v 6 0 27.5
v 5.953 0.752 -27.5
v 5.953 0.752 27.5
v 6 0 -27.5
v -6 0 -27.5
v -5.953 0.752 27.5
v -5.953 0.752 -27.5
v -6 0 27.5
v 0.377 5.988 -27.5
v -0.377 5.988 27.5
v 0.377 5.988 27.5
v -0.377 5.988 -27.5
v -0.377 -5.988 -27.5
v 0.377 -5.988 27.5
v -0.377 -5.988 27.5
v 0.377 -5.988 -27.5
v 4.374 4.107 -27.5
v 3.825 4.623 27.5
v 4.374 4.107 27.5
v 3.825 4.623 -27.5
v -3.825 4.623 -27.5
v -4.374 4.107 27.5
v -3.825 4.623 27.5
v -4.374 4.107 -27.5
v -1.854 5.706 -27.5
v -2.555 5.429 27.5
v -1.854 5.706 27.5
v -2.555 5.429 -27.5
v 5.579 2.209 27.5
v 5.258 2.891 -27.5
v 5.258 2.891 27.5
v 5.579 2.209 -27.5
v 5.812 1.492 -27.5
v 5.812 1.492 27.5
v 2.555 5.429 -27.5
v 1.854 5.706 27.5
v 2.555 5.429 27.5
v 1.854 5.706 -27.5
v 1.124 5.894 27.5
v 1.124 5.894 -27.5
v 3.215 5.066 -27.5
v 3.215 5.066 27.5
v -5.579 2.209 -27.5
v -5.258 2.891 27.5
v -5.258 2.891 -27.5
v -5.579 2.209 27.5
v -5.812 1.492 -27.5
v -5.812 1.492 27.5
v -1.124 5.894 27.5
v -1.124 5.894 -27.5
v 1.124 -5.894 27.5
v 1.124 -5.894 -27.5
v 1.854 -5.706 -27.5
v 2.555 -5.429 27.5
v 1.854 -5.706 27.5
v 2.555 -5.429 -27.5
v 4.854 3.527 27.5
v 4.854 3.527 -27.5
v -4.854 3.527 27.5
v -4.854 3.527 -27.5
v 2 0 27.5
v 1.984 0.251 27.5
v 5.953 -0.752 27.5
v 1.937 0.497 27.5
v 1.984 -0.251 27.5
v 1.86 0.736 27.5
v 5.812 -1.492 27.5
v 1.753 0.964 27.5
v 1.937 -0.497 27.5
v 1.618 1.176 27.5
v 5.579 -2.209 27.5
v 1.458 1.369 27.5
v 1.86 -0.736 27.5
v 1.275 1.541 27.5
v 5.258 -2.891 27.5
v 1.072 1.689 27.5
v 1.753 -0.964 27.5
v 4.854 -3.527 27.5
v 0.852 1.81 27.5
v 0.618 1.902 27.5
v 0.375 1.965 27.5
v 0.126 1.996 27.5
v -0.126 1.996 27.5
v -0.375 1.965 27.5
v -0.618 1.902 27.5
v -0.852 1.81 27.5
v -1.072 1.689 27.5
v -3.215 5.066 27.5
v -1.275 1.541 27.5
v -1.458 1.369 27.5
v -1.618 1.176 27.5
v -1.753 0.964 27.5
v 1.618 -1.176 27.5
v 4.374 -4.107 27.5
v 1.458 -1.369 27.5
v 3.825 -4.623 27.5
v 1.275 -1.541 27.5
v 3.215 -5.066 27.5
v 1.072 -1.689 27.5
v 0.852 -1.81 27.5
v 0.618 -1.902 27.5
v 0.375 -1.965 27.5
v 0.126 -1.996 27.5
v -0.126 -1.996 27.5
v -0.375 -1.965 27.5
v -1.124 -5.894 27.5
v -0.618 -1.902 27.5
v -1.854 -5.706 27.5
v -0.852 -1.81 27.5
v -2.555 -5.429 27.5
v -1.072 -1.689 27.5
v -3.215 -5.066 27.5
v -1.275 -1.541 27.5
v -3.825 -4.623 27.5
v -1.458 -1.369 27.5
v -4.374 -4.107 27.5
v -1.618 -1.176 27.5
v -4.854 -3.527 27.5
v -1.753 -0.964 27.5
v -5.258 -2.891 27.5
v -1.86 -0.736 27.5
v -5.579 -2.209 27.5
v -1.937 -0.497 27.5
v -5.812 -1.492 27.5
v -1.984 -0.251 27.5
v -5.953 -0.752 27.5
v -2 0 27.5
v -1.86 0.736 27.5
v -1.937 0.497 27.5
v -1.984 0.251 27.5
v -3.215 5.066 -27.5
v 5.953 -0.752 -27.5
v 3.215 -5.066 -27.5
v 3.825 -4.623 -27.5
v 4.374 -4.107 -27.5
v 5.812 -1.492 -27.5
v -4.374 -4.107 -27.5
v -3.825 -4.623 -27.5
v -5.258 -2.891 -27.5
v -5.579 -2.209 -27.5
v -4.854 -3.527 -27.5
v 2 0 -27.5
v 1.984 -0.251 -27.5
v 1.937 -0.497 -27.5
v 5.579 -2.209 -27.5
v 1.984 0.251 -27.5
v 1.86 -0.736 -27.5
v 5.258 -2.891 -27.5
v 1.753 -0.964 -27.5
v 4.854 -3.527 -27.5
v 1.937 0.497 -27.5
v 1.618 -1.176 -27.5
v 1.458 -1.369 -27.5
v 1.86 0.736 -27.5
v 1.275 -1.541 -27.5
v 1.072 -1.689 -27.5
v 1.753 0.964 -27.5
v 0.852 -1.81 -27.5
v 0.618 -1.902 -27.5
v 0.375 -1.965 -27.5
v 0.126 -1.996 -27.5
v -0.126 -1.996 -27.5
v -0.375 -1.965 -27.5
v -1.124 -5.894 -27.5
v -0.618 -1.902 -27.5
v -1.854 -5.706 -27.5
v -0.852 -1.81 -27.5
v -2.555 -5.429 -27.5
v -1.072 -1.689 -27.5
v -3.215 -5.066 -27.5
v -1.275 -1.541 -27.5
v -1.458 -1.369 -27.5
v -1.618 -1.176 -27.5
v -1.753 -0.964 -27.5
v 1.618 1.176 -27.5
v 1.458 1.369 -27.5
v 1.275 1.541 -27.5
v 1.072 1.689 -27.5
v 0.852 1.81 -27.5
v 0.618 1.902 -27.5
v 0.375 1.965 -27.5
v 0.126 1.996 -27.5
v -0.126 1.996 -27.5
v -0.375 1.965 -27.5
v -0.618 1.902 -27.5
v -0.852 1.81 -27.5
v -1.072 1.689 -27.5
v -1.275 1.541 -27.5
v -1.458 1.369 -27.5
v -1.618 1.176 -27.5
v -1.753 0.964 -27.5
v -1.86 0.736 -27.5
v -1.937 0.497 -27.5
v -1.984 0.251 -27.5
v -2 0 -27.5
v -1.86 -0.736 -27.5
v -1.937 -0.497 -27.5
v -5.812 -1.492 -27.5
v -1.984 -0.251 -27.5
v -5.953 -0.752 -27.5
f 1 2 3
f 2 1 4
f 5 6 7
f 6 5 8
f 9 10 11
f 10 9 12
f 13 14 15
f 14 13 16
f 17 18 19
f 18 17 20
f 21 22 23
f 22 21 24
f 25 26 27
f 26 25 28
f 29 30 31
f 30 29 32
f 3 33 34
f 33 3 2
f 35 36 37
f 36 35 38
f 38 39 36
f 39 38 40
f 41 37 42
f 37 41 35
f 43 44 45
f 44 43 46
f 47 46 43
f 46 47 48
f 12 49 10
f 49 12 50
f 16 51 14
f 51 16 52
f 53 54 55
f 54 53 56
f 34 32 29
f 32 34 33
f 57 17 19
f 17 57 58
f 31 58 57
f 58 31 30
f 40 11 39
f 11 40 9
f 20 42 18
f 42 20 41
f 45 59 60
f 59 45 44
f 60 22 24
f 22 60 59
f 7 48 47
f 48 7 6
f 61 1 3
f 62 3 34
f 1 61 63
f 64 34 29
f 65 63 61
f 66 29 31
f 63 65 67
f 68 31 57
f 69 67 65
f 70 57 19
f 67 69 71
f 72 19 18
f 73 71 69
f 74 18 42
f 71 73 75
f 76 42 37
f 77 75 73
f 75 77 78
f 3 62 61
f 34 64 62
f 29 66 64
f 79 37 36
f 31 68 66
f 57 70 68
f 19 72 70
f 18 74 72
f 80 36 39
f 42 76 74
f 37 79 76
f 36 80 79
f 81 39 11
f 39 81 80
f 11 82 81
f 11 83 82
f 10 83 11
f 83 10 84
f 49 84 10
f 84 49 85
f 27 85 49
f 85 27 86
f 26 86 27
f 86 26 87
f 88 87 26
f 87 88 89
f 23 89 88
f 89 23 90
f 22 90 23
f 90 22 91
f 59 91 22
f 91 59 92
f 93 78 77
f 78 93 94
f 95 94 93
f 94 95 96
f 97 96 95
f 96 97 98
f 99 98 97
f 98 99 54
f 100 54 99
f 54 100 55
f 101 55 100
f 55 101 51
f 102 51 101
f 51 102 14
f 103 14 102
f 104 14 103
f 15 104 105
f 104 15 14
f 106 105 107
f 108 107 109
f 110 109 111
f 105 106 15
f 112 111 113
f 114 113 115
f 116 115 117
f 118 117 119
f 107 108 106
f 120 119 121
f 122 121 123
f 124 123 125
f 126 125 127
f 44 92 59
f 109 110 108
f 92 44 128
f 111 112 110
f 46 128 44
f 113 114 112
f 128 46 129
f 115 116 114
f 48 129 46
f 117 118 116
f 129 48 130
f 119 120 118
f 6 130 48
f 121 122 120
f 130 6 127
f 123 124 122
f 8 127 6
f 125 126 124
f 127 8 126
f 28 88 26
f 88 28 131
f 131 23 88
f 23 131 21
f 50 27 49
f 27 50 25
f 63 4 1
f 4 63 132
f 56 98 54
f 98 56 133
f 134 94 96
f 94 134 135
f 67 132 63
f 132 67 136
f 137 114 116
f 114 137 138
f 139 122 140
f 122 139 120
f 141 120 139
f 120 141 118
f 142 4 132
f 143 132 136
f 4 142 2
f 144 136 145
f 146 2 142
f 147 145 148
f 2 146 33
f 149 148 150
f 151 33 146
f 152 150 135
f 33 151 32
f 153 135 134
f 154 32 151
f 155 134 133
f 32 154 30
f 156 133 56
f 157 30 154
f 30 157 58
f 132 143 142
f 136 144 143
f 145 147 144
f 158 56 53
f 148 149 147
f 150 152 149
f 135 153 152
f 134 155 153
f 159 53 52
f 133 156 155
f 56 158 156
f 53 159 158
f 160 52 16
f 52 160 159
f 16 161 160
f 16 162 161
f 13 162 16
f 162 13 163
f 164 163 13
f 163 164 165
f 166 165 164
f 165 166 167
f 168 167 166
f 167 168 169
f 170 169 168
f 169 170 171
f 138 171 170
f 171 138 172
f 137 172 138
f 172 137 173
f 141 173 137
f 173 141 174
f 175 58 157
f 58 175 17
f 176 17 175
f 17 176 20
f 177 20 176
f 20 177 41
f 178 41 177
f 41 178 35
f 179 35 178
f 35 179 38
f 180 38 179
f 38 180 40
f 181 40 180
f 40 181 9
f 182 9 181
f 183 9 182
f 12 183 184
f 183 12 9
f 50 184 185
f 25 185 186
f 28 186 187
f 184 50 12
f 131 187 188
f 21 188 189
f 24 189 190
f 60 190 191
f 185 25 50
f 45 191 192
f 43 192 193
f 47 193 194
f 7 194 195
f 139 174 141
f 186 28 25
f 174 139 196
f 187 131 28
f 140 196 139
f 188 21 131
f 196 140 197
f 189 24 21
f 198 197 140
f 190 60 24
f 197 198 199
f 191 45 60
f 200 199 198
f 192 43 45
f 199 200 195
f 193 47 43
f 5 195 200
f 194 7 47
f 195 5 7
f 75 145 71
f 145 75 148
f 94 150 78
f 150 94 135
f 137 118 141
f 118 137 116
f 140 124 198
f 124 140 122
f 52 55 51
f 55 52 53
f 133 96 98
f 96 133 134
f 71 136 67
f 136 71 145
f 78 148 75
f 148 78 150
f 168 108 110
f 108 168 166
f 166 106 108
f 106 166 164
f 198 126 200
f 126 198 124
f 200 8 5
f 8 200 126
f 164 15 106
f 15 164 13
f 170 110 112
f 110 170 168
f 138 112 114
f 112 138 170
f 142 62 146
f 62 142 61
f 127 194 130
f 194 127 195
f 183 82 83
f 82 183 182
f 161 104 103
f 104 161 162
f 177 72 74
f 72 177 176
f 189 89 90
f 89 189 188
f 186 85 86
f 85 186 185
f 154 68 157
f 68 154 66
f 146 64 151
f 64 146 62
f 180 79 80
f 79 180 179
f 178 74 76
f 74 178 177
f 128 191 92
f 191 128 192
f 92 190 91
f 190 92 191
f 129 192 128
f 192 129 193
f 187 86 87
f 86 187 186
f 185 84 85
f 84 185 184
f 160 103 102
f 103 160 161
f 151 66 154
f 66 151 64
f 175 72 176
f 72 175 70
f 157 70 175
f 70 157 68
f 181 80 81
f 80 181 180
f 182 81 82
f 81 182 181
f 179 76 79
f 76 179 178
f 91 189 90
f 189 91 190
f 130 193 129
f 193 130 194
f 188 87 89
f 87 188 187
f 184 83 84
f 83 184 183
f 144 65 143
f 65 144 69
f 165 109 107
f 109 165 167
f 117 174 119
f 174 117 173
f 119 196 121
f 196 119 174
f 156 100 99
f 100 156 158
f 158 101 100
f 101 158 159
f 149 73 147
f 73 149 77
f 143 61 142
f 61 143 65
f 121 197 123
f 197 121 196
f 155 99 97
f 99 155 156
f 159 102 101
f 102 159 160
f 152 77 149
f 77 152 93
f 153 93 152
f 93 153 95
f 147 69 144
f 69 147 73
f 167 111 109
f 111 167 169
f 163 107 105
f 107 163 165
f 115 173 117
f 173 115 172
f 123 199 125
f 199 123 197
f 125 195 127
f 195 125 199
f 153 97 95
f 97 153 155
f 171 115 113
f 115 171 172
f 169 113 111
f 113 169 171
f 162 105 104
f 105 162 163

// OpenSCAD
$fn = 50;


difference() {
	union() {
		translate(v = [0, 0, -27.5000000000]) {
			cylinder(h = 55, r = 6.0000000000);
		}
	}
	union() {
		translate(v = [0, 0, -100.0000000000]) {
			cylinder(h = 200, r = 2);
		}
	}
}
